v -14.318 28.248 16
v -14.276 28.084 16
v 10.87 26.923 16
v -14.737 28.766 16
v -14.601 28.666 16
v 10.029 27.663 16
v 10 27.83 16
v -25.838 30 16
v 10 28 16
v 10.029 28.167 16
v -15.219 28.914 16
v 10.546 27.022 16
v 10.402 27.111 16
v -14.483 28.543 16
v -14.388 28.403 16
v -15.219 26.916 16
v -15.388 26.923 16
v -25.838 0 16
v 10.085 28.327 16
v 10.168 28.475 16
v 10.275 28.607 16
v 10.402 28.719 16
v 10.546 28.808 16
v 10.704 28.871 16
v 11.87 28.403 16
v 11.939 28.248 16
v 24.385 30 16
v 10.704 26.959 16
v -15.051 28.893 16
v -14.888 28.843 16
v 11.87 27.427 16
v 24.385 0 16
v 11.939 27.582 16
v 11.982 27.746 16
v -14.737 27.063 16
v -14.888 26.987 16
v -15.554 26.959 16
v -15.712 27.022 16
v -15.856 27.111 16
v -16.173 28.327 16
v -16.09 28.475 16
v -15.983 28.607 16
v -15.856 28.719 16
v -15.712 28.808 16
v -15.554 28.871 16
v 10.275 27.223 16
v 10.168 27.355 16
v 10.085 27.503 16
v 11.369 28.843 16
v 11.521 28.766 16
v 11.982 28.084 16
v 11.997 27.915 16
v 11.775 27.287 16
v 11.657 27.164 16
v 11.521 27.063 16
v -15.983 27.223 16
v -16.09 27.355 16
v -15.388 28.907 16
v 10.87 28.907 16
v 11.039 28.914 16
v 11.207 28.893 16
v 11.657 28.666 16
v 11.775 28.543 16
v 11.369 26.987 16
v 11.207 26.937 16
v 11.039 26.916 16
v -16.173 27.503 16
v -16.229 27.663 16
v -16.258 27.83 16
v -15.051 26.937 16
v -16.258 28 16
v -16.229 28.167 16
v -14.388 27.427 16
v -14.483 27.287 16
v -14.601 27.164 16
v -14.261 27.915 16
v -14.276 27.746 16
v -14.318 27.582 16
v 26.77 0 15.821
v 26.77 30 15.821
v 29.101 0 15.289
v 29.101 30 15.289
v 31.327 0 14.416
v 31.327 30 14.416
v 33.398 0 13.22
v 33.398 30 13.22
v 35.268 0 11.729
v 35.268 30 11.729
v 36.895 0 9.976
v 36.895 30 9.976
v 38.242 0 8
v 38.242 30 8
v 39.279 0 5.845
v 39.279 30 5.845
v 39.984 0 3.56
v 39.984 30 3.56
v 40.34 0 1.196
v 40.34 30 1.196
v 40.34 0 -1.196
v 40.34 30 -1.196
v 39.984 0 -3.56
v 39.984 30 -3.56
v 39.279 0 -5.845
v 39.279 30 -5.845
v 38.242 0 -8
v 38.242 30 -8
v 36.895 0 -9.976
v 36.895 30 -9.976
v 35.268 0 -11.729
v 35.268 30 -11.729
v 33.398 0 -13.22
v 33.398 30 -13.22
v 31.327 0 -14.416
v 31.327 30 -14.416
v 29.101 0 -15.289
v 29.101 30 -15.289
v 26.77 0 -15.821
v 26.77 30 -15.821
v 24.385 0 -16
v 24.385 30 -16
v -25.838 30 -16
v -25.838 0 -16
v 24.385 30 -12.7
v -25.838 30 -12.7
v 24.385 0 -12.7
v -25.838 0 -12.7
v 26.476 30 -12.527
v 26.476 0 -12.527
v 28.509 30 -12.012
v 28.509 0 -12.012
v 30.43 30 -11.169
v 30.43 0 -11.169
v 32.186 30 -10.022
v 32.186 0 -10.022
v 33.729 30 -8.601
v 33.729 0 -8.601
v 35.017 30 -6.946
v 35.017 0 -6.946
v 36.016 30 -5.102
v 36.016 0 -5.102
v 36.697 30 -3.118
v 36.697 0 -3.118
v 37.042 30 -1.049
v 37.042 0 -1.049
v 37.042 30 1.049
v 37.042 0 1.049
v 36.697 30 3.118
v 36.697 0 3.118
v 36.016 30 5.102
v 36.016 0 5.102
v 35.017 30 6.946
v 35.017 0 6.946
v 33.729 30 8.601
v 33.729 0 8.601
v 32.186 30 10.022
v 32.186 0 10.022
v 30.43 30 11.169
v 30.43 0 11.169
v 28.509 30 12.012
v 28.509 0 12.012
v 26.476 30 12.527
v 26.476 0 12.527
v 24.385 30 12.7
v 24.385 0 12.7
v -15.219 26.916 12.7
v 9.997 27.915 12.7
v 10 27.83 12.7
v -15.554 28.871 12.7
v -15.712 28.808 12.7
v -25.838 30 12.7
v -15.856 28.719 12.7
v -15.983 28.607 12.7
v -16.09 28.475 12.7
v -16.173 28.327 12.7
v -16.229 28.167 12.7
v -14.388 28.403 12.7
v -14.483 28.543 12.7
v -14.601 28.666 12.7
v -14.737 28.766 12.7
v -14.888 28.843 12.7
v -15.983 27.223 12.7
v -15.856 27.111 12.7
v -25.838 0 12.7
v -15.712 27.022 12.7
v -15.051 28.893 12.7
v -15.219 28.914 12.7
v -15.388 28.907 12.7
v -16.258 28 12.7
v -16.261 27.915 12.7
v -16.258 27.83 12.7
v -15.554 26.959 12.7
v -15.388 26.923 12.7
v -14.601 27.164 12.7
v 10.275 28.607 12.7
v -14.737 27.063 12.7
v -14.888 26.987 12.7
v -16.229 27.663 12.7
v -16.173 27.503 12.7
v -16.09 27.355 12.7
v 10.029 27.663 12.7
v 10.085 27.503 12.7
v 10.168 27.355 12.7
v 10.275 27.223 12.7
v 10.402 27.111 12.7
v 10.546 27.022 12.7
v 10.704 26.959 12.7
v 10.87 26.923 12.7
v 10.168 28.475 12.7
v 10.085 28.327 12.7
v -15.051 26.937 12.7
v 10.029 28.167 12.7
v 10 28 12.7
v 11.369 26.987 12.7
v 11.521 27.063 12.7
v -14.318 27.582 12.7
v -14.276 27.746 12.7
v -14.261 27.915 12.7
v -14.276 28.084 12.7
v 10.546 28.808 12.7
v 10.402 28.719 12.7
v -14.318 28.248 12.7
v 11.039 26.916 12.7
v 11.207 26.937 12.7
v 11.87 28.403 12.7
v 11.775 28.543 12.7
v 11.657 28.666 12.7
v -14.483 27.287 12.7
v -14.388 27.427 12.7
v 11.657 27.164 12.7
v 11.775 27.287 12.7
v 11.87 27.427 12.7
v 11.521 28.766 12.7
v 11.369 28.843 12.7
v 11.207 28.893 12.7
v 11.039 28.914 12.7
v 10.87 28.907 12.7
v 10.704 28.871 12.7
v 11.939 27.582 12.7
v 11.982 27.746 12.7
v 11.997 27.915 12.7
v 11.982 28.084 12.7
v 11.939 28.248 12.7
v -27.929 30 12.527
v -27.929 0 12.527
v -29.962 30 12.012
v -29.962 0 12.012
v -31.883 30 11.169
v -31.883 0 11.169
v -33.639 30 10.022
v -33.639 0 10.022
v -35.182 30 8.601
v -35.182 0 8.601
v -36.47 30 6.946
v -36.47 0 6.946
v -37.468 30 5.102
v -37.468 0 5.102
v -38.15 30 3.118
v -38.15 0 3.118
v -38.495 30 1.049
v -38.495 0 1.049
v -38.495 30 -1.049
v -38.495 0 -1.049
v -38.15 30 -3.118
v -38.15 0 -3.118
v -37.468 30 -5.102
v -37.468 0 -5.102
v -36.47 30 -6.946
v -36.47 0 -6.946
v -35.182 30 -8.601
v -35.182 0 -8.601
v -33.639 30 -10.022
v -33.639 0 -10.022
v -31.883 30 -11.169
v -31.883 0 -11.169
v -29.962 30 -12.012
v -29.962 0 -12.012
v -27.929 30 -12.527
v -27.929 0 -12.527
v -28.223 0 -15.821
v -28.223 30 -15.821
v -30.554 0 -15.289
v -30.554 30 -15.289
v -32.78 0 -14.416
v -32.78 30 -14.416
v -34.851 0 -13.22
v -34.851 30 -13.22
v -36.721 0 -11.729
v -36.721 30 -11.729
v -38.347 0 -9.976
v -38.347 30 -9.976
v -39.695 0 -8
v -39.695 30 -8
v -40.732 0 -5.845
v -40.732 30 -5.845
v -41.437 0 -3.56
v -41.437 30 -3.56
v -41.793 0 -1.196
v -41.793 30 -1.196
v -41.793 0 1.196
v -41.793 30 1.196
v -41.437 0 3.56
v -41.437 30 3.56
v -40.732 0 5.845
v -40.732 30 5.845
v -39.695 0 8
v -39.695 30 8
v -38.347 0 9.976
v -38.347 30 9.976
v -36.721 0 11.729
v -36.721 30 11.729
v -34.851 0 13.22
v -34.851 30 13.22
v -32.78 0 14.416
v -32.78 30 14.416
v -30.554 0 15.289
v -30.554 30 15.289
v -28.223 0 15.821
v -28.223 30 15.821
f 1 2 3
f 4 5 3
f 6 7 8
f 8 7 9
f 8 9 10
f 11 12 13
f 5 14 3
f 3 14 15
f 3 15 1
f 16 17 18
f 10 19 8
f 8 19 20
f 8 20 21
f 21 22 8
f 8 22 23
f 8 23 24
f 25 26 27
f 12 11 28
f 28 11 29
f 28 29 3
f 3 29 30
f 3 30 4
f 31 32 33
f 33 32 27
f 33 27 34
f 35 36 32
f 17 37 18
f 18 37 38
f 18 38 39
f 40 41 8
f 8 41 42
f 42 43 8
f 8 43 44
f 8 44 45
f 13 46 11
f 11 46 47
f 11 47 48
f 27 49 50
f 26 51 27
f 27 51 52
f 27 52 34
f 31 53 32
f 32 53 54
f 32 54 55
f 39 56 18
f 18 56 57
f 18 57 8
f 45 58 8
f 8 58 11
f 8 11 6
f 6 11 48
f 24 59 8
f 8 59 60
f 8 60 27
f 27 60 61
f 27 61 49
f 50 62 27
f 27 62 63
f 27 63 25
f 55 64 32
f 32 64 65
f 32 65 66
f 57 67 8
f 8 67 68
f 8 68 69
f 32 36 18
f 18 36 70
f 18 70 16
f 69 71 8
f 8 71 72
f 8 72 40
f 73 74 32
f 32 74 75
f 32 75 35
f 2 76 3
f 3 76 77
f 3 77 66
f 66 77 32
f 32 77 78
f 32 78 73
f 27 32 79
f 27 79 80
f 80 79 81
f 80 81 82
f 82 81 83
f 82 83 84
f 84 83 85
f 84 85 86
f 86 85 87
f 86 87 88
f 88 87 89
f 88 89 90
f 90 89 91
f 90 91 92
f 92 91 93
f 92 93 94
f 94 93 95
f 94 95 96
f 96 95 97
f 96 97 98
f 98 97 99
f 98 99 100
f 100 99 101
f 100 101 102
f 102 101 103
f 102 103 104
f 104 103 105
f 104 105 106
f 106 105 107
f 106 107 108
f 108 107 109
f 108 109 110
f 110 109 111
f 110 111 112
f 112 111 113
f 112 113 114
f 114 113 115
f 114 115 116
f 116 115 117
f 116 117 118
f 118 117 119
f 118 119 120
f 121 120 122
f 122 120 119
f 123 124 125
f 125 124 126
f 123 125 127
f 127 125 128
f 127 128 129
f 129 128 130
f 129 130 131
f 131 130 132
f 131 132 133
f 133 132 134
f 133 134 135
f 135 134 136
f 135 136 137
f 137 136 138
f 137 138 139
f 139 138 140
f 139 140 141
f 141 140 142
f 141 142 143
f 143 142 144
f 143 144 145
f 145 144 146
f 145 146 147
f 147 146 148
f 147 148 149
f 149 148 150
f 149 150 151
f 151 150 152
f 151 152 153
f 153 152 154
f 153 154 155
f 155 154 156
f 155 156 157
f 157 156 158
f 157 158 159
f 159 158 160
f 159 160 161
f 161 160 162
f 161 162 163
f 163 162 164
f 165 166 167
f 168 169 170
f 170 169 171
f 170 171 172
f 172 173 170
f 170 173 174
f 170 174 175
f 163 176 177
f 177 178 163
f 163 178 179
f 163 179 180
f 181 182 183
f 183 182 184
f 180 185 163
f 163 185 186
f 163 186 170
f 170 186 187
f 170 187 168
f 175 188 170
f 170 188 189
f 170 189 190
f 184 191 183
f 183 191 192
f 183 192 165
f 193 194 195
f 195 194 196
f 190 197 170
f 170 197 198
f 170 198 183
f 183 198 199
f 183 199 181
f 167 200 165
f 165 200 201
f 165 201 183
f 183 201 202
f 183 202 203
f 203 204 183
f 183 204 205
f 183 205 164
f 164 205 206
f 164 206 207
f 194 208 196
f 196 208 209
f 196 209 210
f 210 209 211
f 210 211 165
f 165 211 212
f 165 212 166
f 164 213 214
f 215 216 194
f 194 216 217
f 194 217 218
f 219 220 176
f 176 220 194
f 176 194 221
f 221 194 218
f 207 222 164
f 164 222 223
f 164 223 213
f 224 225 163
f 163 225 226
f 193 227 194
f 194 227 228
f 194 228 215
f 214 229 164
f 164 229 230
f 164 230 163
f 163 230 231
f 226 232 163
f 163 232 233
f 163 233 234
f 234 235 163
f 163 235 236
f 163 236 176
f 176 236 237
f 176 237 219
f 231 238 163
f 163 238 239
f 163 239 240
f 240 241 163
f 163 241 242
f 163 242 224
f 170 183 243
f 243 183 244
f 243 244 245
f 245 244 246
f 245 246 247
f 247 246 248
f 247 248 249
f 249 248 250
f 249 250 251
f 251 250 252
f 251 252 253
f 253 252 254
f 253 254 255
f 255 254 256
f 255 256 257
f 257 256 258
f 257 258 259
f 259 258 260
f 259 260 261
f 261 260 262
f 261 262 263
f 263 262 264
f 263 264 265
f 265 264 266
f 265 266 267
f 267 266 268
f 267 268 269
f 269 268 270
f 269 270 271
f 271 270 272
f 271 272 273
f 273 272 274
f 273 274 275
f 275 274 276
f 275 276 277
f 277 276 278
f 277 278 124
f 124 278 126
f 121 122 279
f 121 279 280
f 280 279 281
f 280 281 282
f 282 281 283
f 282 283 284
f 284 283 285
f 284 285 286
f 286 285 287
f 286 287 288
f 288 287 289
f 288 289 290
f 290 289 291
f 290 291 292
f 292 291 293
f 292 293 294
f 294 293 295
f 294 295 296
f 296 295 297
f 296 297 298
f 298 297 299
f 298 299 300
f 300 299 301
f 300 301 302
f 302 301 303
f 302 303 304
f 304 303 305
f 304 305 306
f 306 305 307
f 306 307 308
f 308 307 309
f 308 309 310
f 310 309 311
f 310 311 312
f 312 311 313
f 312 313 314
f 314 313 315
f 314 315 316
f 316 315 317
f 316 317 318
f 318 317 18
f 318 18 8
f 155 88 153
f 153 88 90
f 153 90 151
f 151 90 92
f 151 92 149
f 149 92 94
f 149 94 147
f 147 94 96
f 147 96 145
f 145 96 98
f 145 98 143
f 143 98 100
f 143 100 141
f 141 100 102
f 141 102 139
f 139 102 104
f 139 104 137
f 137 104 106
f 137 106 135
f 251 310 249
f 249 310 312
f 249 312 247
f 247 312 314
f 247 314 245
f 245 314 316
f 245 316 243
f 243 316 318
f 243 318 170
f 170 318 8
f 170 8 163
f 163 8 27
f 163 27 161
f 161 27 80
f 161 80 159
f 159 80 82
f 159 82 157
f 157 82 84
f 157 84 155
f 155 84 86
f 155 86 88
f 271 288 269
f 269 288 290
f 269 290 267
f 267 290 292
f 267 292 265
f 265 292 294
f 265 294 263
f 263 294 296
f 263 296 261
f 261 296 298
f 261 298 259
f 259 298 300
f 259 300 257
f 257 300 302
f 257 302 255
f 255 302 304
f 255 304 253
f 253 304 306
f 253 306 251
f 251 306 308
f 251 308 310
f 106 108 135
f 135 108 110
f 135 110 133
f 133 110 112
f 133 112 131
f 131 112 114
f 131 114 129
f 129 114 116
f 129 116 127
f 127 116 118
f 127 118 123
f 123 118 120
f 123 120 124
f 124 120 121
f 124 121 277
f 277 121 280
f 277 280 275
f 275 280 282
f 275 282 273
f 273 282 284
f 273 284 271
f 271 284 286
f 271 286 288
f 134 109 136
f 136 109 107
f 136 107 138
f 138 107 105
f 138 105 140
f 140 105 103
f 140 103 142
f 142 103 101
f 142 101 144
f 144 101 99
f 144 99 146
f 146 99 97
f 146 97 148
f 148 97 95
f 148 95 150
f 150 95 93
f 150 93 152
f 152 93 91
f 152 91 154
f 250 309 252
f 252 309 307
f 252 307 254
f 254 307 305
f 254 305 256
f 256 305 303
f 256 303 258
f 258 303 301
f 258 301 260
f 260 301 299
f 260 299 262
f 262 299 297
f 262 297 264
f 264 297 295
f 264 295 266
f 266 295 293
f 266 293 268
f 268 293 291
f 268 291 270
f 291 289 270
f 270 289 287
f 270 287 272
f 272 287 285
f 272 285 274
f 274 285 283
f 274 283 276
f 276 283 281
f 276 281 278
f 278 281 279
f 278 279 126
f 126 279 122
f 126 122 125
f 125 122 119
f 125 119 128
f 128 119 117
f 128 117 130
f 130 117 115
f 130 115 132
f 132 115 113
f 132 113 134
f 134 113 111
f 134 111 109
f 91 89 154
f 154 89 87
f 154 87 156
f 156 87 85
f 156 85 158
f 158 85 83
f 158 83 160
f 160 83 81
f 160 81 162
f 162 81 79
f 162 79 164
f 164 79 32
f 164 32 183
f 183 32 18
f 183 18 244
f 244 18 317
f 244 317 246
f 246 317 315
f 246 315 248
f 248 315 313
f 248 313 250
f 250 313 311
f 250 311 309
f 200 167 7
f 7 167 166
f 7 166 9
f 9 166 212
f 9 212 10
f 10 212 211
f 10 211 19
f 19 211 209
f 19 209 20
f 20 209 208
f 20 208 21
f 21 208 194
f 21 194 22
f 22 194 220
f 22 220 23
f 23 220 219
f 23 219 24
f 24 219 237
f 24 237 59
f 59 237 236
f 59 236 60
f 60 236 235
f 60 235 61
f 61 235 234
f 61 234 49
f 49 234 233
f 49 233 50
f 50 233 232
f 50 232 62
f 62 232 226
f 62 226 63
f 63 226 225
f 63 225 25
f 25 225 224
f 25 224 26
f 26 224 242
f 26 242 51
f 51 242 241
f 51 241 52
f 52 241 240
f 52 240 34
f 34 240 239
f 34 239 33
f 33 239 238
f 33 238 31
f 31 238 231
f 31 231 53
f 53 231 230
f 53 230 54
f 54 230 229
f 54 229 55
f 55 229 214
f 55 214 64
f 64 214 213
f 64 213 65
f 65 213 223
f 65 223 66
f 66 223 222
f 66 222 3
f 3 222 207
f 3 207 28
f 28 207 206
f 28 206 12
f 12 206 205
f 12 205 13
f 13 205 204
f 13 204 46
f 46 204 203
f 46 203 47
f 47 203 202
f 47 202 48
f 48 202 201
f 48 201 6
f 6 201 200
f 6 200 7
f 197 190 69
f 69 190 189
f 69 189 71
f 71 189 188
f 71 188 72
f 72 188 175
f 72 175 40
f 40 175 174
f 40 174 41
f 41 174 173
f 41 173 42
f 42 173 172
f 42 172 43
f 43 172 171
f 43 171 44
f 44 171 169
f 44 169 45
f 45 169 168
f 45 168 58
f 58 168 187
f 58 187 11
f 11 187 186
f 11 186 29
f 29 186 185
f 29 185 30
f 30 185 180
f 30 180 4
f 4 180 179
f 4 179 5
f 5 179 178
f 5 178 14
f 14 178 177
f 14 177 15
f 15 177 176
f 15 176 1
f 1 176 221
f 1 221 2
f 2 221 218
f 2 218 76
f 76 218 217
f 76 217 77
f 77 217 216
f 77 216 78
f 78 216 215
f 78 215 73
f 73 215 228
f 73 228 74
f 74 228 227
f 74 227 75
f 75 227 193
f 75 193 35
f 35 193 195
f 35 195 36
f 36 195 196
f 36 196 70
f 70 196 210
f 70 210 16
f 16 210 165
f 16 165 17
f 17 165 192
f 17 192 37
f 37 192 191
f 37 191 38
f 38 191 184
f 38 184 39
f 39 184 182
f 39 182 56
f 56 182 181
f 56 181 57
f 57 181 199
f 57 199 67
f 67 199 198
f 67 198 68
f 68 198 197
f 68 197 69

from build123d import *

# Parameters (mm, degrees)
BOSS_EXTRUDE1_DEPTH = 30
CUT_EXTRUDE1_REACH  = 62.617
SKETCH2_R           = 1


with BuildPart() as part:
    # Sketch1 → Boss-Extrude1 (new body)
    with BuildSketch(Plane(origin=(0, 0, 0), x_dir=(1, 0, 0), z_dir=(0, 1, 0))):
        with BuildLine():
            ThreePointArc((24.385224347, -16), (40.385224347, 0), (24.385224347, 16))
            Line((24.385224347, 16), (-25.838160871, 16))
            ThreePointArc((-25.838160871, 16), (-41.838160871, 0), (-25.838160871, -16))
            Line((-25.838160871, -16), (24.385224347, -16))
        make_face()
        with BuildLine():
            ThreePointArc((-25.838160871, -12.7), (-38.538160871, 0), (-25.838160871, 12.7))
            Line((-25.838160871, 12.7), (24.385224347, 12.7))
            ThreePointArc((24.385224347, 12.7), (37.085224347, 0), (24.385224347, -12.7))
            Line((24.385224347, -12.7), (-25.838160871, -12.7))
        make_face(mode=Mode.SUBTRACT)
    extrude(amount=BOSS_EXTRUDE1_DEPTH)

    # Sketch2 → Cut-Extrude1 (cut, up to next)
    with BuildSketch(Plane.XY.offset(16), mode=Mode.PRIVATE) as cut_extrude1_sk1:
        with Locations((-15.261305548, 27.914958552)):
            Circle(SKETCH2_R)
    cut_extrude1_tool1 = extrude(cut_extrude1_sk1.sketch, amount=-CUT_EXTRUDE1_REACH, mode=Mode.PRIVATE) & part.part
    # Sketch2 → Cut-Extrude1 (cut, up to next)
    with BuildSketch(Plane.XY.offset(16), mode=Mode.PRIVATE) as cut_extrude1_sk2:
        with Locations((10.996521588, 27.914958552)):
            Circle(SKETCH2_R)
    cut_extrude1_tool2 = extrude(cut_extrude1_sk2.sketch, amount=-CUT_EXTRUDE1_REACH, mode=Mode.PRIVATE) & part.part
    add(cut_extrude1_tool1.solids().sort_by_distance((-15.261306, 27.914959, 16))[0], mode=Mode.SUBTRACT)
    add(cut_extrude1_tool2.solids().sort_by_distance((10.996522, 27.914959, 16))[0], mode=Mode.SUBTRACT)


solid = part.part
